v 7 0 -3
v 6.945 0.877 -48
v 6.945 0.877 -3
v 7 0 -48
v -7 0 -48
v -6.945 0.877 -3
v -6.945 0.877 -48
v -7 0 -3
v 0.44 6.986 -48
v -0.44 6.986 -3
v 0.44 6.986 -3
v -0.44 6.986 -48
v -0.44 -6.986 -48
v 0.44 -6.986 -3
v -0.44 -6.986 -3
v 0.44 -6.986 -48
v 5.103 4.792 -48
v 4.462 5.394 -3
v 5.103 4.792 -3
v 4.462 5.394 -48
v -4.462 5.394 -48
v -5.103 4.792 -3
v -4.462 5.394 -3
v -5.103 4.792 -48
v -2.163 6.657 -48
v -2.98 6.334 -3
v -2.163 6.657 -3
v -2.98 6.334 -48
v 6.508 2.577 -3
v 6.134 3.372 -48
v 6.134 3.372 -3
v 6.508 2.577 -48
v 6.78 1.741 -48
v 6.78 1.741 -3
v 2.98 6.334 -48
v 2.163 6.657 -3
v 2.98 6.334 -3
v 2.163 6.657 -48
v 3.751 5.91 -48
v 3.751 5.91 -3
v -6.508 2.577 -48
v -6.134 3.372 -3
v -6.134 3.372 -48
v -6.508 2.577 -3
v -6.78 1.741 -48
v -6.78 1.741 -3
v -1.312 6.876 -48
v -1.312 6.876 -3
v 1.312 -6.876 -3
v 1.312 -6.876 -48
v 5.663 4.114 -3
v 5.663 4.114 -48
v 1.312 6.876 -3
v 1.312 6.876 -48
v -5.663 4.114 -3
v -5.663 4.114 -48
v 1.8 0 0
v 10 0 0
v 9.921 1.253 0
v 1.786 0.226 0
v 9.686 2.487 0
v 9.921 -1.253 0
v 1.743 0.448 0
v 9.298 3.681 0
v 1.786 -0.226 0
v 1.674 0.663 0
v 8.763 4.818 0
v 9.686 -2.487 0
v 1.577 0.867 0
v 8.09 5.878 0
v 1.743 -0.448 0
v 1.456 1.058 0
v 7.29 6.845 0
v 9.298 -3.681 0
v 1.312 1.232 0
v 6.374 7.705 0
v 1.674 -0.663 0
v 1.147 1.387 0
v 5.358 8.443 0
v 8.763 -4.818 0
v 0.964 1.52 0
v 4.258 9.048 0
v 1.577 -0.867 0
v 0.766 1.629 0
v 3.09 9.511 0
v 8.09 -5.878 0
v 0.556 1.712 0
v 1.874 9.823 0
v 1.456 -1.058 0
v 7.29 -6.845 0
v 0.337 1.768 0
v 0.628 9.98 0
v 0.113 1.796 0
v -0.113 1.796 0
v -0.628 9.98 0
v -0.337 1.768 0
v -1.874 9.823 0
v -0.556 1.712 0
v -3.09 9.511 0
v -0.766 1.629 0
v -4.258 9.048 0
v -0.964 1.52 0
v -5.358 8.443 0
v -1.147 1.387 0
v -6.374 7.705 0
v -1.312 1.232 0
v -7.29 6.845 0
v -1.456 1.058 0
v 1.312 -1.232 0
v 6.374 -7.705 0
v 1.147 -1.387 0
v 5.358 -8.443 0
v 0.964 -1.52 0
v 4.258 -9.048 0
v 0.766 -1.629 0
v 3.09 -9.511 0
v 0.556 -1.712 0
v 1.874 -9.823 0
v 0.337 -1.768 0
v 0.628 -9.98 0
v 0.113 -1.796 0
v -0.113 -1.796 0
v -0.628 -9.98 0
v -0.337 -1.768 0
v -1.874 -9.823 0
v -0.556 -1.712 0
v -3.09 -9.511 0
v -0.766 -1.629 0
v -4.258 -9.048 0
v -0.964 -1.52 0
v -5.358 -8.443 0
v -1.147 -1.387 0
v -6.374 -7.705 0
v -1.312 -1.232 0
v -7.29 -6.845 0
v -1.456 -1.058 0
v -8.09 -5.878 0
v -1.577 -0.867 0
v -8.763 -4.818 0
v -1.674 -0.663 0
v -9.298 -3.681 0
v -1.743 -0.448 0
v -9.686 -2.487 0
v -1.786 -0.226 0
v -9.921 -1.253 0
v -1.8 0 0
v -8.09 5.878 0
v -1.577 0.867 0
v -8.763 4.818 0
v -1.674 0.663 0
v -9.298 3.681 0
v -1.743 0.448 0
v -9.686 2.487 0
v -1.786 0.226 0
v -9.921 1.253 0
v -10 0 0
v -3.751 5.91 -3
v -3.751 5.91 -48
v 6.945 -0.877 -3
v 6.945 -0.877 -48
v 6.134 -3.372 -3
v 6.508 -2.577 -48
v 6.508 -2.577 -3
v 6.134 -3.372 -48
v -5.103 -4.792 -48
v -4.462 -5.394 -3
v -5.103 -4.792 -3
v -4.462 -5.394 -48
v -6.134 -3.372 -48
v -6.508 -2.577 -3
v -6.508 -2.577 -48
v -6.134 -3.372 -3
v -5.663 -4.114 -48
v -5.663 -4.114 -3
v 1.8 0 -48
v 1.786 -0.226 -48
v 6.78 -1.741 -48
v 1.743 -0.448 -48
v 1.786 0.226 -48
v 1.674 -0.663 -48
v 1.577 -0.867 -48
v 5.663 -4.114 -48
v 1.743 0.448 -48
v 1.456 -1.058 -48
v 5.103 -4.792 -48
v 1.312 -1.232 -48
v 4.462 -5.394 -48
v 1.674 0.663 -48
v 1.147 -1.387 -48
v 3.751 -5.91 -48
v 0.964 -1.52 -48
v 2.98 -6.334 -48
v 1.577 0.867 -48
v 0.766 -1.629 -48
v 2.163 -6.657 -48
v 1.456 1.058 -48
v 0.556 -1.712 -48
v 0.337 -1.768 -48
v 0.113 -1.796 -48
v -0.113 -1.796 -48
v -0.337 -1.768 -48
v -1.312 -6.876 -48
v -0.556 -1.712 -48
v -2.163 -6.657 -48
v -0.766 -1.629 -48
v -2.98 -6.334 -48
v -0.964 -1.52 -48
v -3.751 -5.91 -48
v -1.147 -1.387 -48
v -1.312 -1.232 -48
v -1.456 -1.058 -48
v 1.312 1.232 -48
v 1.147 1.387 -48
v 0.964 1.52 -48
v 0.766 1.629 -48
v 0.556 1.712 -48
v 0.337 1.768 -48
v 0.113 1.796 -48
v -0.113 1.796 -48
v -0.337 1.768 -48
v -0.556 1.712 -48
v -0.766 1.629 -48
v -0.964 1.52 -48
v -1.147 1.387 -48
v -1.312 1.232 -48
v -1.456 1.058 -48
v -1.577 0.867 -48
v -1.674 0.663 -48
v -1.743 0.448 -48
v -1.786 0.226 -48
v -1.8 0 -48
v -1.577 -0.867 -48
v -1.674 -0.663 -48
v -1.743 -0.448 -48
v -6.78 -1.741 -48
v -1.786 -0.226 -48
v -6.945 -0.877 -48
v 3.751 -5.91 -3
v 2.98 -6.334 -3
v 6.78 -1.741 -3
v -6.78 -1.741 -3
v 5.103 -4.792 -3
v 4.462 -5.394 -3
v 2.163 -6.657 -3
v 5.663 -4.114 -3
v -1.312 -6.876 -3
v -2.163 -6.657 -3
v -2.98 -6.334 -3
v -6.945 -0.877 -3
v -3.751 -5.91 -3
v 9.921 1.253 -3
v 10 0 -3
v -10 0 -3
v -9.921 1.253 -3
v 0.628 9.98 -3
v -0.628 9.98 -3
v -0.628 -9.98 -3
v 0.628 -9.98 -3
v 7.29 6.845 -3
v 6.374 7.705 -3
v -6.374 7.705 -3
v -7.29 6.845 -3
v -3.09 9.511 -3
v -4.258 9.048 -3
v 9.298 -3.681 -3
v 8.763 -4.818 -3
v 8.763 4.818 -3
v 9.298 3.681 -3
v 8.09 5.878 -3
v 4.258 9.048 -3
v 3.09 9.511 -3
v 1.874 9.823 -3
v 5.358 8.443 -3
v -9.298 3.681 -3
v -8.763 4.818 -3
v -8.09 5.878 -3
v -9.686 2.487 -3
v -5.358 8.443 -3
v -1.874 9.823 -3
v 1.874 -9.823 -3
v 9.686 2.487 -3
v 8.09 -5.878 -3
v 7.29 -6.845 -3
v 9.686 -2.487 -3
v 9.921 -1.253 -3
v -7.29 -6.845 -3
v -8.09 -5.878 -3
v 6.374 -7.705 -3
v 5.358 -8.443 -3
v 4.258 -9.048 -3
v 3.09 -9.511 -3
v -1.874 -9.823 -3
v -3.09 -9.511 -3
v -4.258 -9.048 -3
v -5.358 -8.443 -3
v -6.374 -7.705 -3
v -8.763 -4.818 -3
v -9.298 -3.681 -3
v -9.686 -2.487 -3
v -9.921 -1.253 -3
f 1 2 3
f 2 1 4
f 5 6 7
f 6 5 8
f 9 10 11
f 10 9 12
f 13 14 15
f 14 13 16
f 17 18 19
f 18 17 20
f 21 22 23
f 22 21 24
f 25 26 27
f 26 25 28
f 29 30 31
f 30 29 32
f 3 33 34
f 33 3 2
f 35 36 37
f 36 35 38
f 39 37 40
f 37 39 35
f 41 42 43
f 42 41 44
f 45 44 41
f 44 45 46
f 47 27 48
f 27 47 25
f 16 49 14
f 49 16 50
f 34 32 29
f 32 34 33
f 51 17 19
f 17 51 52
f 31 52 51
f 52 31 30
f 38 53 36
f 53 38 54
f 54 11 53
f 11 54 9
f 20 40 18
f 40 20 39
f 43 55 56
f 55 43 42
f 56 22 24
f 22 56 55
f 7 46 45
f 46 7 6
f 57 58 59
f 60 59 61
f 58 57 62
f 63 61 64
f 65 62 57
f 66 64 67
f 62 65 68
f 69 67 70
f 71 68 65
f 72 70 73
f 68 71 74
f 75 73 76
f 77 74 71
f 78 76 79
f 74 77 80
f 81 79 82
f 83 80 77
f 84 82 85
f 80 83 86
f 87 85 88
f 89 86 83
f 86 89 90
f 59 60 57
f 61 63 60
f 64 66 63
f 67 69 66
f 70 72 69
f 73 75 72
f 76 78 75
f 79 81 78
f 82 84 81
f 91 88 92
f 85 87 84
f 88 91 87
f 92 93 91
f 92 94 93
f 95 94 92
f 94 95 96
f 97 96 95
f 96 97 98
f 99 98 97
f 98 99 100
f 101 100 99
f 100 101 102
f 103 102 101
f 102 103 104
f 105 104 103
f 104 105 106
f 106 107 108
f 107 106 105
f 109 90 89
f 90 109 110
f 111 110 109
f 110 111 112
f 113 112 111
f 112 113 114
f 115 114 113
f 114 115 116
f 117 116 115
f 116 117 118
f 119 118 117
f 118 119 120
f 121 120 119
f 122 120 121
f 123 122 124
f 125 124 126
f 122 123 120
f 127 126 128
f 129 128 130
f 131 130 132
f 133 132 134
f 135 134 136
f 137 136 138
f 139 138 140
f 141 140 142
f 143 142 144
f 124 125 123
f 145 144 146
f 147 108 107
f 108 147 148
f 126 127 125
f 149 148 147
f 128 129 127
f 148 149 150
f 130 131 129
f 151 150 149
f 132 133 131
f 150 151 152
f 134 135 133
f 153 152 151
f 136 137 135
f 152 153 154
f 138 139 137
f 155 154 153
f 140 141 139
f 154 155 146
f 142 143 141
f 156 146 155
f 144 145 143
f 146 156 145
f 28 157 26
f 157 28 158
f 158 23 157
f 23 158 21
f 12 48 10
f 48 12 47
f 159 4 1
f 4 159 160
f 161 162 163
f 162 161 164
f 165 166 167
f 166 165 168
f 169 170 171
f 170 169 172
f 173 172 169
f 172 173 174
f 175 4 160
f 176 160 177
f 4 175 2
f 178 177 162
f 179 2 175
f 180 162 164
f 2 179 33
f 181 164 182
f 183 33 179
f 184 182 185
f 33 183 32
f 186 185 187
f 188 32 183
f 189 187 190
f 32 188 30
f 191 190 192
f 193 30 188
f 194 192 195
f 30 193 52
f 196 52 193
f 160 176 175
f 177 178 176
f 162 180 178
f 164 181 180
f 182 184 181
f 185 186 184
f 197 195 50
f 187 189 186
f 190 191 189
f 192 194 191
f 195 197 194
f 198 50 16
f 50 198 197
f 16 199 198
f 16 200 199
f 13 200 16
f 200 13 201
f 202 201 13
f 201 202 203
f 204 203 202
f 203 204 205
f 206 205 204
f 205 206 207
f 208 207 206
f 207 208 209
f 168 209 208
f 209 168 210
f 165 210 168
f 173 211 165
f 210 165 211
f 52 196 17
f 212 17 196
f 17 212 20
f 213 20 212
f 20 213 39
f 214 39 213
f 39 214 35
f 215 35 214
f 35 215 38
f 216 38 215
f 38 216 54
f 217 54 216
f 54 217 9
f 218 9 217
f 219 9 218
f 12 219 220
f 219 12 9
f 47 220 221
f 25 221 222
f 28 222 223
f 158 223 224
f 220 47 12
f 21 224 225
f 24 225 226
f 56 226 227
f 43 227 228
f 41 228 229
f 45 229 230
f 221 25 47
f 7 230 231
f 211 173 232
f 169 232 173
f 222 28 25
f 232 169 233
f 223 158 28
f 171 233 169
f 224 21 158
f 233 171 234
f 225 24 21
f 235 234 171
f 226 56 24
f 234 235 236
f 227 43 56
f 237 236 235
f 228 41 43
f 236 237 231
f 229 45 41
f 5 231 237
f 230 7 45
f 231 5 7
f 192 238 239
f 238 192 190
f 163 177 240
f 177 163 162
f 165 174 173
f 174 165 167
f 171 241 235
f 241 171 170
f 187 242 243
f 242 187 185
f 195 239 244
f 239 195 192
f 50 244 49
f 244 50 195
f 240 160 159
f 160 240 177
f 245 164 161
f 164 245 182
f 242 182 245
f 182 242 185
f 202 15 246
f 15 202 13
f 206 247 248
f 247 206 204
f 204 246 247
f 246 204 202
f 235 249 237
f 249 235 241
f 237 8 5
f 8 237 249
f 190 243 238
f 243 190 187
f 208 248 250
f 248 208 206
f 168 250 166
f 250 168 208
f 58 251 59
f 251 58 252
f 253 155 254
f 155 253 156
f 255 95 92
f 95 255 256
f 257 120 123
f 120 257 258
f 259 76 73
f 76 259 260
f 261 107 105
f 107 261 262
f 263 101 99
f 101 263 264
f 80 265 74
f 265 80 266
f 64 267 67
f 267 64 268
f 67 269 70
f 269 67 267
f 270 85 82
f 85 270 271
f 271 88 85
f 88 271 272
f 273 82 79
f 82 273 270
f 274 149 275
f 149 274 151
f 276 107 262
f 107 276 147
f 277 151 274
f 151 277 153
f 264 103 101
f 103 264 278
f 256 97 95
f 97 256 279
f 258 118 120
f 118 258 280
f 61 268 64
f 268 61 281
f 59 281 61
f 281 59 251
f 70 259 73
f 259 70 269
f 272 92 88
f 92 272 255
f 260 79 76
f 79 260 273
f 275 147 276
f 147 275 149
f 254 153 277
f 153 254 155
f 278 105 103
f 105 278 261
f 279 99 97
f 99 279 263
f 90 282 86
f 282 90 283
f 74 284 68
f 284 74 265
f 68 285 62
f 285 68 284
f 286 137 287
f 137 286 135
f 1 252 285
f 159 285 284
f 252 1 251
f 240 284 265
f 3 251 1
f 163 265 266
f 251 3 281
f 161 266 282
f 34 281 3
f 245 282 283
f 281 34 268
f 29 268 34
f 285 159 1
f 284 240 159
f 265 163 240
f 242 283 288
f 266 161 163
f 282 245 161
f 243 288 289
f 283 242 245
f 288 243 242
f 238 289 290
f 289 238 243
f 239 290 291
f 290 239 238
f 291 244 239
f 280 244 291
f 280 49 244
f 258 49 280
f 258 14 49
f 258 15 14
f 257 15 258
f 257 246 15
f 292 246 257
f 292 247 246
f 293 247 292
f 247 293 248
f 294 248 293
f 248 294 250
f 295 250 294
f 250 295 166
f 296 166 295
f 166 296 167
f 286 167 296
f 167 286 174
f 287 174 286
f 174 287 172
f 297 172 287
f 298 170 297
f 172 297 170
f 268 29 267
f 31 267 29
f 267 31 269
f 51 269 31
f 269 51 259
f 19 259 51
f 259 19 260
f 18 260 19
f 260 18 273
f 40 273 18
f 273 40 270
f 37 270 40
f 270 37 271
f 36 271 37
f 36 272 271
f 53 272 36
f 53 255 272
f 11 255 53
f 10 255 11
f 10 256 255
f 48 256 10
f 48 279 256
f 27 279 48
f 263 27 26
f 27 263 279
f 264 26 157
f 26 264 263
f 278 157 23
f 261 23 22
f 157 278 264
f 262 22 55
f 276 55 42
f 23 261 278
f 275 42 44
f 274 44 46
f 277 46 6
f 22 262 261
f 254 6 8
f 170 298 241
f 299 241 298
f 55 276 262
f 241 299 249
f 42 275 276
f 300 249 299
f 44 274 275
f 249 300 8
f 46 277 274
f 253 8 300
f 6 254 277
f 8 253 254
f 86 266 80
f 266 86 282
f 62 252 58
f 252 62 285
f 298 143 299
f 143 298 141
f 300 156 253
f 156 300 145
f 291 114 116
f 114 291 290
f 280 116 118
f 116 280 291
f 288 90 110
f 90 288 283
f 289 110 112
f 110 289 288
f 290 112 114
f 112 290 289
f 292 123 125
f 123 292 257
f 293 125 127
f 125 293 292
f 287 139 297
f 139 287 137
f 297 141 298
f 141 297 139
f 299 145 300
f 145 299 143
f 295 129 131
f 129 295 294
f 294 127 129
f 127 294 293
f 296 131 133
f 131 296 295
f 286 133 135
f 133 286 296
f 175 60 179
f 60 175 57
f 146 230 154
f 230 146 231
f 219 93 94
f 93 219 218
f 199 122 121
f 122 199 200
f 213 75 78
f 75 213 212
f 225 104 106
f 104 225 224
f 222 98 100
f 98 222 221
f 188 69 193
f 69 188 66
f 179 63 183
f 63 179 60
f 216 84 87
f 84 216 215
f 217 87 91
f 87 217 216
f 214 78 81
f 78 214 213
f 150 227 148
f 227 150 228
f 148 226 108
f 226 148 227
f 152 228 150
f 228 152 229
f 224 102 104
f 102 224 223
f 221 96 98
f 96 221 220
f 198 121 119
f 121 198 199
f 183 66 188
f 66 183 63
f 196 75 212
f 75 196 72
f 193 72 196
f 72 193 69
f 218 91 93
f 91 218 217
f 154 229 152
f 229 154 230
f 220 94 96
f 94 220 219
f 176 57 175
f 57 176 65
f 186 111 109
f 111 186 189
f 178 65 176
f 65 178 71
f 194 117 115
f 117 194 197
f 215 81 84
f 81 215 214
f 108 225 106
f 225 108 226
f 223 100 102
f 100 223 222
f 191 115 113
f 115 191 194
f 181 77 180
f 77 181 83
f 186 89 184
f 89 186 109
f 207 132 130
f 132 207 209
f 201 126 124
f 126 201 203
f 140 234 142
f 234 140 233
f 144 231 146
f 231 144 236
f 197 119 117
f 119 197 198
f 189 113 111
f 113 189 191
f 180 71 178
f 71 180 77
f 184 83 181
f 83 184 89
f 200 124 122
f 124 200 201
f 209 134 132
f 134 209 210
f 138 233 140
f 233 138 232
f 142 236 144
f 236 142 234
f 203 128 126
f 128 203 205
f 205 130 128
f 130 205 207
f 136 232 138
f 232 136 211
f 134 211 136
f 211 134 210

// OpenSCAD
$fn = 50;


difference() {
	union() {
		translate(v = [0, 0, -48.0000000000]) {
			cylinder(h = 48, r = 7.0000000000);
		}
		translate(v = [0, 0, -3.0000000000]) {
			cylinder(h = 3, r = 10.0000000000);
		}
	}
	union() {
		#translate(v = [0, 0, -48]) {
			cylinder(h = 48, r = 1.8000000000);
		}
	}
}
